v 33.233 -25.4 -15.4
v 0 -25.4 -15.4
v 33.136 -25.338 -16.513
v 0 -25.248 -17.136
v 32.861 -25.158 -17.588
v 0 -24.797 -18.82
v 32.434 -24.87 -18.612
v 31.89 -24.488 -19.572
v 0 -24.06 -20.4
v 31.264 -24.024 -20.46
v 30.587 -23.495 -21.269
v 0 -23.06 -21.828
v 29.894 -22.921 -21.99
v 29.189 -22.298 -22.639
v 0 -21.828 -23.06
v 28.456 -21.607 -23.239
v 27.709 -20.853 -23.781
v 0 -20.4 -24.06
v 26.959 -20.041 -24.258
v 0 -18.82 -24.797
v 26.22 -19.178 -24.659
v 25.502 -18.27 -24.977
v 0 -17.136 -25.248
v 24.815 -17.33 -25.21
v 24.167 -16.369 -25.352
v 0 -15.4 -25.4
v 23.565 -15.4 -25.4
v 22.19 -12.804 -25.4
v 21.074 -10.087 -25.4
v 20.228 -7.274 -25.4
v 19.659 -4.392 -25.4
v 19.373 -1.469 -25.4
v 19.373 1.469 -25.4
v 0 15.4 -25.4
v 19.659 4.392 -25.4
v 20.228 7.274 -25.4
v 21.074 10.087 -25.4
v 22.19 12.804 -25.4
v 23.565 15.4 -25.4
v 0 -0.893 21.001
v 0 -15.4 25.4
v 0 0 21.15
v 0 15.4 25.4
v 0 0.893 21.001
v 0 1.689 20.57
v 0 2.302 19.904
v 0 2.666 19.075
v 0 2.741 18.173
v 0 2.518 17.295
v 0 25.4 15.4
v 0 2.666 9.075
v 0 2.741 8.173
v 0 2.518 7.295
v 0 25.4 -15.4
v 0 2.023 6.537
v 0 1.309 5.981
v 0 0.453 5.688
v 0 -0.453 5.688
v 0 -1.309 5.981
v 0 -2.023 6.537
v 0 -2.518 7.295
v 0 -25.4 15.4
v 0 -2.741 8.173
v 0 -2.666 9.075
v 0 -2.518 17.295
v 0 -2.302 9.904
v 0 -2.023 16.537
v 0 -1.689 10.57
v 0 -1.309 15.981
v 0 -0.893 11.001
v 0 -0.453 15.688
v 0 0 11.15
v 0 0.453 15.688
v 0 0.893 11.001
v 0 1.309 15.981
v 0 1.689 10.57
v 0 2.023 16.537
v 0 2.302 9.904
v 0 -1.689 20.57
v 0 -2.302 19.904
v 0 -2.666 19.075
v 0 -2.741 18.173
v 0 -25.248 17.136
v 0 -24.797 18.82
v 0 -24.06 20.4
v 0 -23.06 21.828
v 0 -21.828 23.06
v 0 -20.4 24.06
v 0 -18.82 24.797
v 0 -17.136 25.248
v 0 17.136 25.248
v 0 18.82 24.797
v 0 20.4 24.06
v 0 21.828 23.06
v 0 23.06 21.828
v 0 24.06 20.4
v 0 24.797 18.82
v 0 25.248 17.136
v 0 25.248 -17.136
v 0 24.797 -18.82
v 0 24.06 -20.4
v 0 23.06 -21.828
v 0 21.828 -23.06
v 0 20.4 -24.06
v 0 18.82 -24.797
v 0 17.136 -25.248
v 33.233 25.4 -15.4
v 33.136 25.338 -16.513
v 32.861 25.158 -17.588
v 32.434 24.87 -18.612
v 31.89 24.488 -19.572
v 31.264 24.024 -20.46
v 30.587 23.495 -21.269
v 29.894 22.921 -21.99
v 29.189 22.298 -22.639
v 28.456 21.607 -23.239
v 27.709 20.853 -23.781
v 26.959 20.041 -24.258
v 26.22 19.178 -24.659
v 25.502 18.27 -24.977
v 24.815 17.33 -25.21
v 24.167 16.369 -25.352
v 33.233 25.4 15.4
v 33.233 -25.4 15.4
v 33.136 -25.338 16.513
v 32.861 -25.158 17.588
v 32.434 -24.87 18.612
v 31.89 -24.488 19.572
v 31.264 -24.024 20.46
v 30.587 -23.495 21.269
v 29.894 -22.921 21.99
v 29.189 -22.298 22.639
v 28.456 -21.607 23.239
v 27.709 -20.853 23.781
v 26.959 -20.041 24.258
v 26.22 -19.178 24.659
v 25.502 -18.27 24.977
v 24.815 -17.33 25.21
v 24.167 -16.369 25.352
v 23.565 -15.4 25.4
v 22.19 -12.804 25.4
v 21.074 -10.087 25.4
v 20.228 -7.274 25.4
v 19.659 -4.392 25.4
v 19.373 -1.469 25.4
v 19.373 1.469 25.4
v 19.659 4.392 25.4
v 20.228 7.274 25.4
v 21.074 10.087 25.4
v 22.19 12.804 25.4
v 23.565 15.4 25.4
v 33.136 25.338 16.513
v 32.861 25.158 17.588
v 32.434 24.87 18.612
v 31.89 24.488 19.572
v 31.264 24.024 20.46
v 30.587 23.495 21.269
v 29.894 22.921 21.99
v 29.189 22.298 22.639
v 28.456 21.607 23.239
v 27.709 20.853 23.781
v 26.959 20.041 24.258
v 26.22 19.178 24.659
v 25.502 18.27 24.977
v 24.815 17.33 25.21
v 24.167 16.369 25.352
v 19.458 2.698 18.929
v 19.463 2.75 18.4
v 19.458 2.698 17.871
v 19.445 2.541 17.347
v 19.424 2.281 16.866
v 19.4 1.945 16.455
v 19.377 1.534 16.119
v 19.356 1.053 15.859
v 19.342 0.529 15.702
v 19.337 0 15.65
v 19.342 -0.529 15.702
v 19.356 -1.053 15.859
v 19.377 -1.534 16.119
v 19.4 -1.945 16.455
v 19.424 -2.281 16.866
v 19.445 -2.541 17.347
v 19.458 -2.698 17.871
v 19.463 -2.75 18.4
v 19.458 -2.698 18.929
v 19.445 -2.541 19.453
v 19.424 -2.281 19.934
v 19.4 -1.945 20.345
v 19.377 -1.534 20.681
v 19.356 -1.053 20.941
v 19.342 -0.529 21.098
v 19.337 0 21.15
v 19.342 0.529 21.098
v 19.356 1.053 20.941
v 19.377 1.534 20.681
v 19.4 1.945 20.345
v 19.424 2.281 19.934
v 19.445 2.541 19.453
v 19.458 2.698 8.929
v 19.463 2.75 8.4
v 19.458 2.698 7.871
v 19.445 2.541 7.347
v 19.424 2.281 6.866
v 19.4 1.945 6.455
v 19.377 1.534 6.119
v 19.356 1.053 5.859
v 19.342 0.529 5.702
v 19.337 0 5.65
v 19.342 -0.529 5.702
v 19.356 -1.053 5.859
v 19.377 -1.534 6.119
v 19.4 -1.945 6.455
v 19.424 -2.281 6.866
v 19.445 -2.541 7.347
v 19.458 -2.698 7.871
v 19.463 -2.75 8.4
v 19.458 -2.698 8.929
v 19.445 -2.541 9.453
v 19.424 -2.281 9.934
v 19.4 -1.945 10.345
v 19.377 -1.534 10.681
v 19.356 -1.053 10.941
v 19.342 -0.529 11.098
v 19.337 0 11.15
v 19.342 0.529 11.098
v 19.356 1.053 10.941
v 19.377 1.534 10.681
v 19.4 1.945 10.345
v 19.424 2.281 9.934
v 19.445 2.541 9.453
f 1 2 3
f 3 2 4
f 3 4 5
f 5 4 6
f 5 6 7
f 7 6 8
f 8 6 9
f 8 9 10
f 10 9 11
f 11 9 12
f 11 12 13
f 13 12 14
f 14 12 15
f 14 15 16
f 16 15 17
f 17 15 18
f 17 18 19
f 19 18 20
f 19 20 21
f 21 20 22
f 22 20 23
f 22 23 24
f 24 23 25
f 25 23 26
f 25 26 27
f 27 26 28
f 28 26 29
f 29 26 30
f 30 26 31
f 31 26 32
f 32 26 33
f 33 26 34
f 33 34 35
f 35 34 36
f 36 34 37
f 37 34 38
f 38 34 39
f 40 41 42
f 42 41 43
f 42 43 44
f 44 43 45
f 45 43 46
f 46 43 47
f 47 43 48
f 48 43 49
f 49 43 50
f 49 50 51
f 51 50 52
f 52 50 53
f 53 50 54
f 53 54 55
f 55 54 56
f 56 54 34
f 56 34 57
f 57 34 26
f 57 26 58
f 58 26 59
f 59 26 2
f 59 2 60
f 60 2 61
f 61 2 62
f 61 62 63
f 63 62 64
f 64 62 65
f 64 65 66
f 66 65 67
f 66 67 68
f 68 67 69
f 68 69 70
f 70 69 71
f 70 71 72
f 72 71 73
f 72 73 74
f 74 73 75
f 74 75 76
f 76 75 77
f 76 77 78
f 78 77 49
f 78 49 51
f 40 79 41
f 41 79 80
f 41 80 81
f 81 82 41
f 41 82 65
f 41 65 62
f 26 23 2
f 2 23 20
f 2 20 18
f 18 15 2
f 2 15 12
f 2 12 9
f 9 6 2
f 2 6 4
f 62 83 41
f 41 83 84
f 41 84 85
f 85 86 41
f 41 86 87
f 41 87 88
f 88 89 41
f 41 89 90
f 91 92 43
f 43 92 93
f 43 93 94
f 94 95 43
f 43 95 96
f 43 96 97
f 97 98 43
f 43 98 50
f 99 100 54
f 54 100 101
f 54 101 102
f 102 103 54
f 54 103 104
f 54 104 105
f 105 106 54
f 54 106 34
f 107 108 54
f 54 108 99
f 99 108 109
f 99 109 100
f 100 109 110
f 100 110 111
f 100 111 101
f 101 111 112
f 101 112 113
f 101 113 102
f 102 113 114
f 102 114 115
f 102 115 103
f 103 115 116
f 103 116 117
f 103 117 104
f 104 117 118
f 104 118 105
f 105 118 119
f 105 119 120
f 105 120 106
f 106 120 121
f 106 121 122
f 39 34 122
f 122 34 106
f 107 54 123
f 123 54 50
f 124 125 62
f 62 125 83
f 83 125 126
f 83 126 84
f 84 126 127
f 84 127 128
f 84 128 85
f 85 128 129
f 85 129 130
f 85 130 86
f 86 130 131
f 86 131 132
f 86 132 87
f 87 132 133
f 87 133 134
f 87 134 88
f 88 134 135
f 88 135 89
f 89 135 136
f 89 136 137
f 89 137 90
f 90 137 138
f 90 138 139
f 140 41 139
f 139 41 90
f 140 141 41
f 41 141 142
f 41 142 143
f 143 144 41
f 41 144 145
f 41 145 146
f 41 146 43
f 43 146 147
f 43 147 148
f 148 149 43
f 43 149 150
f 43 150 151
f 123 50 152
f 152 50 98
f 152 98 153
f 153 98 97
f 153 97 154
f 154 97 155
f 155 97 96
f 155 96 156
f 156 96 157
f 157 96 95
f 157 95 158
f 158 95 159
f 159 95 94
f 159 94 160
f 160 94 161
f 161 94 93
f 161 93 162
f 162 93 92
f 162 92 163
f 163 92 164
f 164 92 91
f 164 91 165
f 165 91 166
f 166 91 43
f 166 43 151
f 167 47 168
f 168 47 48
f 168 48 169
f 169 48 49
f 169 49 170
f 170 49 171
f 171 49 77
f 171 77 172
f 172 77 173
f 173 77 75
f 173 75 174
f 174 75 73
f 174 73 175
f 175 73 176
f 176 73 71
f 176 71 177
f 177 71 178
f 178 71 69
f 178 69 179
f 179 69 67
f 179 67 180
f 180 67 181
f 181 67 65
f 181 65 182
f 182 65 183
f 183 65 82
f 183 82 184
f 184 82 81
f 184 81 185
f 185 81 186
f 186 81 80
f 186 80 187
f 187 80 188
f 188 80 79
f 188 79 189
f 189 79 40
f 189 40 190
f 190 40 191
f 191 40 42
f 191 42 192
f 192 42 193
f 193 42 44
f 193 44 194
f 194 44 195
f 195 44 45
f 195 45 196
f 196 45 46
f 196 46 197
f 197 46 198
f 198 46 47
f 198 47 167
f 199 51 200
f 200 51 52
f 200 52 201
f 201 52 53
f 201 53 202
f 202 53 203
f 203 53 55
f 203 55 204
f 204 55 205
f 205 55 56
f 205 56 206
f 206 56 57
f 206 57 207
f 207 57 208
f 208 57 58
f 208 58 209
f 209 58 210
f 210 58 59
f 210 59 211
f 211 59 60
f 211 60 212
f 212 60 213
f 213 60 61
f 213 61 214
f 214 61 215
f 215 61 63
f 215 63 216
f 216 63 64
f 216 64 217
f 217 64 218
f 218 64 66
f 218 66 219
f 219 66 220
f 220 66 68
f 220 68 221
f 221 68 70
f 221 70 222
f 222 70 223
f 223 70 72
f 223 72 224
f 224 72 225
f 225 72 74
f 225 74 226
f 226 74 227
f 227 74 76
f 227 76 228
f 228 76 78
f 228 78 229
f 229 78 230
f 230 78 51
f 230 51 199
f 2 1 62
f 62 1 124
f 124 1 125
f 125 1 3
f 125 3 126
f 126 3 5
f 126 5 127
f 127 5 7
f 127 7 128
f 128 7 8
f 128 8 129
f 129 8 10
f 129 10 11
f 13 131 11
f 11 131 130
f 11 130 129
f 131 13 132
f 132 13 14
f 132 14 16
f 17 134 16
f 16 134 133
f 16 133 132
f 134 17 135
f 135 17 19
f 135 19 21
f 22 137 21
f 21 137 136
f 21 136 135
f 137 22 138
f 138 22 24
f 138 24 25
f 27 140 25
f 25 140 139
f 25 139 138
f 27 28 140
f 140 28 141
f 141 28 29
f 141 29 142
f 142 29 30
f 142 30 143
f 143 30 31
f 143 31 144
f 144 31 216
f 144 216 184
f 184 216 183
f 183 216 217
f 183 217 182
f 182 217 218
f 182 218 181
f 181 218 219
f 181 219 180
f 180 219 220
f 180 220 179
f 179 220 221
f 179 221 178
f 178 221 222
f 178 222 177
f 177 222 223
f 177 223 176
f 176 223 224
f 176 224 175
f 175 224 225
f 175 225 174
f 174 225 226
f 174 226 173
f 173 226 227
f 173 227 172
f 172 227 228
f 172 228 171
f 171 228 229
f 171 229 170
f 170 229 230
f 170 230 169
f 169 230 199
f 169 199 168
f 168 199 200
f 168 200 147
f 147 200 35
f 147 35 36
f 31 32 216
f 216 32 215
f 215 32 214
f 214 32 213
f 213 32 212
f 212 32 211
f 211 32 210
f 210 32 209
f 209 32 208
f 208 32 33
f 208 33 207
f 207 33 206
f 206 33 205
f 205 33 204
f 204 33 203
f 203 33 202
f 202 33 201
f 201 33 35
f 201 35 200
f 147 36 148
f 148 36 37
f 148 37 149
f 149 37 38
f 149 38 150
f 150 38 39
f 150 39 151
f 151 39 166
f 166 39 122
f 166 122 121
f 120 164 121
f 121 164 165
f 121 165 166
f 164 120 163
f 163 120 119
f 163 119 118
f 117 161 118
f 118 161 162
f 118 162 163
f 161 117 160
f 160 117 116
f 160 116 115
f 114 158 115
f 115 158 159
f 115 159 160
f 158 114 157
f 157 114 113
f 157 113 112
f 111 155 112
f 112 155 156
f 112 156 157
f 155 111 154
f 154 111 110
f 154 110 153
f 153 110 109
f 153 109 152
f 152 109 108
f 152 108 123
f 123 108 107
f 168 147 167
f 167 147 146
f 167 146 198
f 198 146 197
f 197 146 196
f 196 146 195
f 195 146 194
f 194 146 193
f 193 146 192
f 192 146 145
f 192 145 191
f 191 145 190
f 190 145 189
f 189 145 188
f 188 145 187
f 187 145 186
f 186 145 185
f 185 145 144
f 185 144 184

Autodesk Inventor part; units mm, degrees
ref_plane "YZ Plane" through (0, 0, 0) normal (1, 0, 0) x (0, 1, 0)
ref_plane "XZ Plane" through (0, 0, 0) normal (0, 1, 0) x (-1, 0, 0)
ref_plane "XY Plane" through (0, 0, 0) normal (0, 0, 1) x (1, 0, 0)
sketch "Sketch1" plane through (0, 0, 0) normal (0, 0, 1) x (1, 0, 0)
  line L0 (0, -25.4) -> (33.233, -25.4)
  line L1 (33.233, 25.4) -> (0, 25.4)
  line L2 (0, 25.4) -> (0, -25.4)
  circle A0 centre (49.5, 0) radius 30.1625 construction
  line L3 (0, 0) -> (-12.014, 0)
  arc A1 (33.233, 25.4) -> (33.233, -25.4) centre (49.5, 0) ccw
  point P0 (0, 0)
  dimension "d0" = 60.325
  dimension "d1" = 49.5
  dimension "d2" = 50.8
extrude "Extrusion1" add sketch "Sketch1" along normal mid plane 50.8
sketch "Sketch2" plane through (0, -25.4, 25.4) normal (-1, 0, 0) x (0, 0, 1)
  circle A0 centre (-7, 25.4) radius 2.75
  circle A1 centre (-17, 25.4) radius 2.75
  line L0 (0, 50.8) -> (0, 0) projected
  point P0 (-25.4, 25.4)
  dimension "d8" = 5.5
  dimension "d9" = 7
  dimension "d10" = 10
extrude "Extrusion2" cut sketch "Sketch2" against normal through all
fillet "Fillet1" radius 10 4 edges at (16.6165, 25.4, 25.4) (16.6165, -25.4, 25.4) (16.6165, 25.4, -25.4) (16.6165, -25.4, -25.4)
properties part number "Pipe Holder" material "ABS Plastic"
